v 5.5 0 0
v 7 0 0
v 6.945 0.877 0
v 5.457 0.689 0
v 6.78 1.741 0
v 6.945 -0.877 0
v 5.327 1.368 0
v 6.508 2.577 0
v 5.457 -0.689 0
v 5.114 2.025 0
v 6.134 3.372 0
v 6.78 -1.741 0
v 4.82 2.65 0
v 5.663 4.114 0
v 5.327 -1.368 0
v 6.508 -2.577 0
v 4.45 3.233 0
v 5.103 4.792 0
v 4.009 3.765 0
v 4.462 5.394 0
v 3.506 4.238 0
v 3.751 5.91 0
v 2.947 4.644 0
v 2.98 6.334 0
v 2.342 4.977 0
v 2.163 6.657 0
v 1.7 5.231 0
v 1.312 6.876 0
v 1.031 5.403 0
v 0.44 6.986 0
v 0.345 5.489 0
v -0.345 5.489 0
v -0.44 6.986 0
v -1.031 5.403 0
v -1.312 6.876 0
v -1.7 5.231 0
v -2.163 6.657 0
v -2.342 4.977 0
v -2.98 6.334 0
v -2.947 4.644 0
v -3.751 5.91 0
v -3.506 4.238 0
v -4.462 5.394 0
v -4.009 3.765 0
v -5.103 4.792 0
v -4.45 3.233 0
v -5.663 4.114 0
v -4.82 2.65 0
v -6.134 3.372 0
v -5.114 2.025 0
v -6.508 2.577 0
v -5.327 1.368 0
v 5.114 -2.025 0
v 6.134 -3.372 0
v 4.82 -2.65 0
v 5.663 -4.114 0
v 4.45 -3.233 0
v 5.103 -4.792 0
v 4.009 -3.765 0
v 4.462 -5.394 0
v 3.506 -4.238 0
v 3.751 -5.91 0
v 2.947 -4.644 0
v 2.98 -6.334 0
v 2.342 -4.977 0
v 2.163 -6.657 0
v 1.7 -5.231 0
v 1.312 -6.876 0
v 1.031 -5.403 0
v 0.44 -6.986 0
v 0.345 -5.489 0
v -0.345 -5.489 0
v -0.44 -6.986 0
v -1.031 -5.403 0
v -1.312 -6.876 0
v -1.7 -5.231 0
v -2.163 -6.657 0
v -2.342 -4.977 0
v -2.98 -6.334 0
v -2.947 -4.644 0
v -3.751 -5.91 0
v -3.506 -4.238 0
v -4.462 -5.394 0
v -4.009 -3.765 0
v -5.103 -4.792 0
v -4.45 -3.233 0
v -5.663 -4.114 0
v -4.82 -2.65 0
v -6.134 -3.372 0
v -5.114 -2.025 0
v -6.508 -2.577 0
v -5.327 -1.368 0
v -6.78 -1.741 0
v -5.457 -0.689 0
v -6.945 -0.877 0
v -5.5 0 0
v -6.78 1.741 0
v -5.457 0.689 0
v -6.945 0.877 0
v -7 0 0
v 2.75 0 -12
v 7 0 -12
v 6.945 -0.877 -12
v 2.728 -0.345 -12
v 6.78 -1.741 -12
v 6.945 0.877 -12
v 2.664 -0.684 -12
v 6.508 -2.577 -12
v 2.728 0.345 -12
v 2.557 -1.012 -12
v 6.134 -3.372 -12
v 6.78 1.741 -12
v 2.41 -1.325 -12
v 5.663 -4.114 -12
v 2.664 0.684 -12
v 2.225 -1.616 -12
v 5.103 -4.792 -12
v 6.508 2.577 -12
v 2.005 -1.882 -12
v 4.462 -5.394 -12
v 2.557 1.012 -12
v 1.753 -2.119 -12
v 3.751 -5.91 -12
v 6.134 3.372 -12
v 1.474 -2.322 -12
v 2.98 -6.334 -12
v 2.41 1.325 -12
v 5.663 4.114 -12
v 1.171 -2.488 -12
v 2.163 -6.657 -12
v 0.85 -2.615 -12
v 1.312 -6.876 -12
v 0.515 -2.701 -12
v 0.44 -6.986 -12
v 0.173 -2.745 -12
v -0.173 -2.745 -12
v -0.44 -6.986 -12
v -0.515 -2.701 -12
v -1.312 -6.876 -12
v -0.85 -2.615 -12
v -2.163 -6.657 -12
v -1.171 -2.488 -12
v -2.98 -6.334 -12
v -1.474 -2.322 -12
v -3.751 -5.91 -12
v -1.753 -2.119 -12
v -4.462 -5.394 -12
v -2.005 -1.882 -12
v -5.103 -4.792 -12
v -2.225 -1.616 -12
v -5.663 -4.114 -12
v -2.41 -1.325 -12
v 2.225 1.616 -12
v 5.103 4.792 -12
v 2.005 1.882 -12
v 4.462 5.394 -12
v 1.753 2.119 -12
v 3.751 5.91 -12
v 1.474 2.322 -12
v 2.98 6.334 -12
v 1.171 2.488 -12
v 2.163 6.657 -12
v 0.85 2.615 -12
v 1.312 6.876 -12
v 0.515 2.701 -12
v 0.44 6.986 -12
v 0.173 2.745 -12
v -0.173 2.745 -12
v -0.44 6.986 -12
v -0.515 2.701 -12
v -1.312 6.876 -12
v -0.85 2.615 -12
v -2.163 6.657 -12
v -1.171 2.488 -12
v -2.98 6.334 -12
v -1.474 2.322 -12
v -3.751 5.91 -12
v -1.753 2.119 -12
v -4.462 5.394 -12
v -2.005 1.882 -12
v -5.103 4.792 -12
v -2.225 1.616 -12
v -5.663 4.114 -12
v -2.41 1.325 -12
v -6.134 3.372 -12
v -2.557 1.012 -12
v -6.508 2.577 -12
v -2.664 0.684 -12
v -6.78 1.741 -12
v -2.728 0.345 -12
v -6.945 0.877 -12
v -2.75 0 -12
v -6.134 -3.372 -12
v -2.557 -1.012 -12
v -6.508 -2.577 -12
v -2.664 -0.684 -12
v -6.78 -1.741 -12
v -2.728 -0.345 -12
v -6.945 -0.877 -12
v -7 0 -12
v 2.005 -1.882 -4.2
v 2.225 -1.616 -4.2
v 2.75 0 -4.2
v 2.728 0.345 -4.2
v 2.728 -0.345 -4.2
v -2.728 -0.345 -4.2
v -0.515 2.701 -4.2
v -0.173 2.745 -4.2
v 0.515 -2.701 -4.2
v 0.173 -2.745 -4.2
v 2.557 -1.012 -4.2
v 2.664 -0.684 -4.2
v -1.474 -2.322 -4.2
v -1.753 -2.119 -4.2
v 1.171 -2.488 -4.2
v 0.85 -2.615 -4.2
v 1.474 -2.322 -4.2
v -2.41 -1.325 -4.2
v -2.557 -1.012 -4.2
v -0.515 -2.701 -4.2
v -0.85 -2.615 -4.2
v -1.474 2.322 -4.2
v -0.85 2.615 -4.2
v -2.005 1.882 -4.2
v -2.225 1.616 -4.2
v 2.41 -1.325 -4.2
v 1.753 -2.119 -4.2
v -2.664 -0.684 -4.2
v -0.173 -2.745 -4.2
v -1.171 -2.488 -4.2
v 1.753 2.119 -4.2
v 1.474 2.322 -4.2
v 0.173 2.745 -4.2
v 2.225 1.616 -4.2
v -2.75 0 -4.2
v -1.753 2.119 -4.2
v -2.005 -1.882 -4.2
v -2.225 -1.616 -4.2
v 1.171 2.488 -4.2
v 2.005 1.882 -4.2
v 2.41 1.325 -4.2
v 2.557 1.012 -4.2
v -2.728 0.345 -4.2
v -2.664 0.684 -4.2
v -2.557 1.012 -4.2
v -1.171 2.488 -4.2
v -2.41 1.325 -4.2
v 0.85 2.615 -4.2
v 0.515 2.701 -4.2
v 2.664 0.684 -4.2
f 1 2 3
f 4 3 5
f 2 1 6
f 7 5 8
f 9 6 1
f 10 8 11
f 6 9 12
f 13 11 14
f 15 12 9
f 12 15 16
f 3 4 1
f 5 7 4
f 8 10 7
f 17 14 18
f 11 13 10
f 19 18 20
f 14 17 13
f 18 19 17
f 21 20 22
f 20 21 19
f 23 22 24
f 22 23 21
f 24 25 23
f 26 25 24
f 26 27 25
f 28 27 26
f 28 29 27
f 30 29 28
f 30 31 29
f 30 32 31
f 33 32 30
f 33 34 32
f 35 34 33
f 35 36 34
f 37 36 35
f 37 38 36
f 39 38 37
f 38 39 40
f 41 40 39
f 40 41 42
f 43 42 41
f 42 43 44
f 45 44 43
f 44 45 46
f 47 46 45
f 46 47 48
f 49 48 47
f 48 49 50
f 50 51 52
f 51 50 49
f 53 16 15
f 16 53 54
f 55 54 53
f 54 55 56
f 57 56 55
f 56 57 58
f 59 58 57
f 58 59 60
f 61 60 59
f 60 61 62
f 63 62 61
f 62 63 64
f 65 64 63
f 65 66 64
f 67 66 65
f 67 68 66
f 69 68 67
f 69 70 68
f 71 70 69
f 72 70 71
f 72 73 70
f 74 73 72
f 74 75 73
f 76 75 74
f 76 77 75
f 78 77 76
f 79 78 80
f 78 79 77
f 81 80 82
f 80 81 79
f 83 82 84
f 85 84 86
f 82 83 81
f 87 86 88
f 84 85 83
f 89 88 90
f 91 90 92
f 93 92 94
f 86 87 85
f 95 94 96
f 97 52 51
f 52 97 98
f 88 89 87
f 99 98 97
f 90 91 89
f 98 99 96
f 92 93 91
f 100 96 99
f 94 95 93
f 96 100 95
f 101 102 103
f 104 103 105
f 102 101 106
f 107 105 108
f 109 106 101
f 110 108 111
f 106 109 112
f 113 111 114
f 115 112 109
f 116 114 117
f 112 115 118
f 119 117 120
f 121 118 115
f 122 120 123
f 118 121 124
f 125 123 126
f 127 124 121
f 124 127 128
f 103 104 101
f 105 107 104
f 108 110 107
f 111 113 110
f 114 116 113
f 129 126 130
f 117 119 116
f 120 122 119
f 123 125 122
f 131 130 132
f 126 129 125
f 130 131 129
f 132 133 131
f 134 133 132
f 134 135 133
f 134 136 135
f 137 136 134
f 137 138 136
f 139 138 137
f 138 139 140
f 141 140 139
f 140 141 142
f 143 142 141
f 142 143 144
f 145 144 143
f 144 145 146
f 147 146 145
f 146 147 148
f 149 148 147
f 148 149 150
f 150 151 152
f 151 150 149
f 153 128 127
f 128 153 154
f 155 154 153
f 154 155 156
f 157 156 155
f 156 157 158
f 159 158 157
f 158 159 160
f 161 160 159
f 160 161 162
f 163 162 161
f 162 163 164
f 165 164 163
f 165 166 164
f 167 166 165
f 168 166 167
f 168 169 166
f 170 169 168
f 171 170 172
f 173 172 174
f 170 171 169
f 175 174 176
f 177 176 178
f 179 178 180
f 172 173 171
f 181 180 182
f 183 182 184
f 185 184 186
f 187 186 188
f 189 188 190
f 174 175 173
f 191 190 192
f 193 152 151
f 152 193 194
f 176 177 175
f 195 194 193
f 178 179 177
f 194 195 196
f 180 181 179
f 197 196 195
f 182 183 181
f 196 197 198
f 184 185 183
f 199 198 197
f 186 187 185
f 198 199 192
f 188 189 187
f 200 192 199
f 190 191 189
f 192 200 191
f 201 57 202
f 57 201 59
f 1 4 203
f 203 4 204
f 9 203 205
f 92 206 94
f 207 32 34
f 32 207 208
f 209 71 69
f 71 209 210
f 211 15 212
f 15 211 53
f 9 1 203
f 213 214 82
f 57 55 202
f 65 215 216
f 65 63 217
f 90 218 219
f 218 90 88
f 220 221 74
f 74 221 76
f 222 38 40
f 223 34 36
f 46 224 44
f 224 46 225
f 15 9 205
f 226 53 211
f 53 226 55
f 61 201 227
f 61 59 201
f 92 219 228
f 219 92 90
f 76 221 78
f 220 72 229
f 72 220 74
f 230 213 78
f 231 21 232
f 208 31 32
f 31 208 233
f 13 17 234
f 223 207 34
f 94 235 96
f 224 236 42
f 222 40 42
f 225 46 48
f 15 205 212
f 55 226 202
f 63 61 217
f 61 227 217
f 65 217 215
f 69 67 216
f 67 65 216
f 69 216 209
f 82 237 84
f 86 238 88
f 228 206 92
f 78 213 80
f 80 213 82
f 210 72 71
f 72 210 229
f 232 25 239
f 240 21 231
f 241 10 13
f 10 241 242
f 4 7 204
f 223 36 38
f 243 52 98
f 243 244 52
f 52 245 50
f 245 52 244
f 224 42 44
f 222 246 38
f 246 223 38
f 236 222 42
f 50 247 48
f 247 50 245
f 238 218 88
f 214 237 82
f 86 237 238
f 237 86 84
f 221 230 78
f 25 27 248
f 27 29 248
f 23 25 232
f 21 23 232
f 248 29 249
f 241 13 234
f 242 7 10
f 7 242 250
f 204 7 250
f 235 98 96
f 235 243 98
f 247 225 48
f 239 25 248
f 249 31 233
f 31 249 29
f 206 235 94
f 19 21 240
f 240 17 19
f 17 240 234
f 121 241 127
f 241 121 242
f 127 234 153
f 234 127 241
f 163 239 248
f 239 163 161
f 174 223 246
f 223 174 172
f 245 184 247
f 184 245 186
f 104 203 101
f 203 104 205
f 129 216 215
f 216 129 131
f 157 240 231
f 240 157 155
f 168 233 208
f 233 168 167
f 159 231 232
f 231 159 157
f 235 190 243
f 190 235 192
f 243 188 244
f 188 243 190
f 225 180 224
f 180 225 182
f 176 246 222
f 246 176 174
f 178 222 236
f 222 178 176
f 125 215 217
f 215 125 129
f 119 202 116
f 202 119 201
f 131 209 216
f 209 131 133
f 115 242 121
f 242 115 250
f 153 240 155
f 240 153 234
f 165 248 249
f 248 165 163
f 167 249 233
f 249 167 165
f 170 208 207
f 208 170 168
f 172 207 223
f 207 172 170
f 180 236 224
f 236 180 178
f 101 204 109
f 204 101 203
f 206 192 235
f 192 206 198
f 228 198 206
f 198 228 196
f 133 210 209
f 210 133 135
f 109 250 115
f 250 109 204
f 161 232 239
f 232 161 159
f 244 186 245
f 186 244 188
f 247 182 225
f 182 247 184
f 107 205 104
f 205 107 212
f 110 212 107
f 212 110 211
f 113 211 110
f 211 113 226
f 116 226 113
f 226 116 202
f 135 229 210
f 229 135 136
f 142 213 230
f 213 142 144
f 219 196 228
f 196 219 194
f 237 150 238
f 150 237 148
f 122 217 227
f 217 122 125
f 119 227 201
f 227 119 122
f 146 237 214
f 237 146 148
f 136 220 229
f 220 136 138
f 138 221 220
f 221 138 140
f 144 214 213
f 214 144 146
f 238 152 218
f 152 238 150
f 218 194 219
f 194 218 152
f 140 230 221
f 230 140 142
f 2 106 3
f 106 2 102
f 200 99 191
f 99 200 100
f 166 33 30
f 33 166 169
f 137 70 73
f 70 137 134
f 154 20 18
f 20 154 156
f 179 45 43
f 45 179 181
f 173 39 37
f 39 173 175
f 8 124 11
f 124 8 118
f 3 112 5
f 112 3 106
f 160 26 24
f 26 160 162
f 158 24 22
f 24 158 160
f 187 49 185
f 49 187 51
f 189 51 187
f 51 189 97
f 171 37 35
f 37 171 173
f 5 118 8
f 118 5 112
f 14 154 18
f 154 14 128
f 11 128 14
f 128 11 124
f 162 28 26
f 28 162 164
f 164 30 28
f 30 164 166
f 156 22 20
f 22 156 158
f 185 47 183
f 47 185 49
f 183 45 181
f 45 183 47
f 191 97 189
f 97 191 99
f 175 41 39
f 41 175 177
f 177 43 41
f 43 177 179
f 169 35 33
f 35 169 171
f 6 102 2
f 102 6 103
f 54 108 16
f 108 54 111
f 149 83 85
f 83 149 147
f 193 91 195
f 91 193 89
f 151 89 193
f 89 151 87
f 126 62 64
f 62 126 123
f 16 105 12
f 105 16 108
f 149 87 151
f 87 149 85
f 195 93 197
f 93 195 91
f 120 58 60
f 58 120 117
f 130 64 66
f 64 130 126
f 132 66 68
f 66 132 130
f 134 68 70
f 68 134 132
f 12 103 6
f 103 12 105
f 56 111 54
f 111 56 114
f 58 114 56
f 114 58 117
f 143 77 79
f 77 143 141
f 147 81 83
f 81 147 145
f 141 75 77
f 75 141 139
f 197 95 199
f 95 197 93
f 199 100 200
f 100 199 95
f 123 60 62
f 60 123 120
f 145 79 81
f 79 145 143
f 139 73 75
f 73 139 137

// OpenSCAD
$fn = 50;


difference() {
	union() {
		translate(v = [0, 0, -12.0000000000]) {
			cylinder(h = 12, r = 7.0000000000);
		}
		cylinder(h = 0, r = 17.0000000000);
	}
	union() {
		translate(v = [0, 0, 0]) {
			rotate(a = [0, 0, 0]) {
				difference() {
					union() {
						#translate(v = [0, 0, -12.0000000000]) {
							cylinder(h = 12, r = 2.2500000000);
						}
						#translate(v = [0, 0, -4.2000000000]) {
							cylinder(h = 4.2000000000, r1 = 2.7500000000, r2 = 5.5000000000);
						}
						#translate(v = [0, 0, -12.0000000000]) {
							cylinder(h = 12, r = 2.7500000000);
						}
						#translate(v = [0, 0, -12.0000000000]) {
							cylinder(h = 12, r = 2.2500000000);
						}
					}
					union();
				}
			}
		}
	}
}
